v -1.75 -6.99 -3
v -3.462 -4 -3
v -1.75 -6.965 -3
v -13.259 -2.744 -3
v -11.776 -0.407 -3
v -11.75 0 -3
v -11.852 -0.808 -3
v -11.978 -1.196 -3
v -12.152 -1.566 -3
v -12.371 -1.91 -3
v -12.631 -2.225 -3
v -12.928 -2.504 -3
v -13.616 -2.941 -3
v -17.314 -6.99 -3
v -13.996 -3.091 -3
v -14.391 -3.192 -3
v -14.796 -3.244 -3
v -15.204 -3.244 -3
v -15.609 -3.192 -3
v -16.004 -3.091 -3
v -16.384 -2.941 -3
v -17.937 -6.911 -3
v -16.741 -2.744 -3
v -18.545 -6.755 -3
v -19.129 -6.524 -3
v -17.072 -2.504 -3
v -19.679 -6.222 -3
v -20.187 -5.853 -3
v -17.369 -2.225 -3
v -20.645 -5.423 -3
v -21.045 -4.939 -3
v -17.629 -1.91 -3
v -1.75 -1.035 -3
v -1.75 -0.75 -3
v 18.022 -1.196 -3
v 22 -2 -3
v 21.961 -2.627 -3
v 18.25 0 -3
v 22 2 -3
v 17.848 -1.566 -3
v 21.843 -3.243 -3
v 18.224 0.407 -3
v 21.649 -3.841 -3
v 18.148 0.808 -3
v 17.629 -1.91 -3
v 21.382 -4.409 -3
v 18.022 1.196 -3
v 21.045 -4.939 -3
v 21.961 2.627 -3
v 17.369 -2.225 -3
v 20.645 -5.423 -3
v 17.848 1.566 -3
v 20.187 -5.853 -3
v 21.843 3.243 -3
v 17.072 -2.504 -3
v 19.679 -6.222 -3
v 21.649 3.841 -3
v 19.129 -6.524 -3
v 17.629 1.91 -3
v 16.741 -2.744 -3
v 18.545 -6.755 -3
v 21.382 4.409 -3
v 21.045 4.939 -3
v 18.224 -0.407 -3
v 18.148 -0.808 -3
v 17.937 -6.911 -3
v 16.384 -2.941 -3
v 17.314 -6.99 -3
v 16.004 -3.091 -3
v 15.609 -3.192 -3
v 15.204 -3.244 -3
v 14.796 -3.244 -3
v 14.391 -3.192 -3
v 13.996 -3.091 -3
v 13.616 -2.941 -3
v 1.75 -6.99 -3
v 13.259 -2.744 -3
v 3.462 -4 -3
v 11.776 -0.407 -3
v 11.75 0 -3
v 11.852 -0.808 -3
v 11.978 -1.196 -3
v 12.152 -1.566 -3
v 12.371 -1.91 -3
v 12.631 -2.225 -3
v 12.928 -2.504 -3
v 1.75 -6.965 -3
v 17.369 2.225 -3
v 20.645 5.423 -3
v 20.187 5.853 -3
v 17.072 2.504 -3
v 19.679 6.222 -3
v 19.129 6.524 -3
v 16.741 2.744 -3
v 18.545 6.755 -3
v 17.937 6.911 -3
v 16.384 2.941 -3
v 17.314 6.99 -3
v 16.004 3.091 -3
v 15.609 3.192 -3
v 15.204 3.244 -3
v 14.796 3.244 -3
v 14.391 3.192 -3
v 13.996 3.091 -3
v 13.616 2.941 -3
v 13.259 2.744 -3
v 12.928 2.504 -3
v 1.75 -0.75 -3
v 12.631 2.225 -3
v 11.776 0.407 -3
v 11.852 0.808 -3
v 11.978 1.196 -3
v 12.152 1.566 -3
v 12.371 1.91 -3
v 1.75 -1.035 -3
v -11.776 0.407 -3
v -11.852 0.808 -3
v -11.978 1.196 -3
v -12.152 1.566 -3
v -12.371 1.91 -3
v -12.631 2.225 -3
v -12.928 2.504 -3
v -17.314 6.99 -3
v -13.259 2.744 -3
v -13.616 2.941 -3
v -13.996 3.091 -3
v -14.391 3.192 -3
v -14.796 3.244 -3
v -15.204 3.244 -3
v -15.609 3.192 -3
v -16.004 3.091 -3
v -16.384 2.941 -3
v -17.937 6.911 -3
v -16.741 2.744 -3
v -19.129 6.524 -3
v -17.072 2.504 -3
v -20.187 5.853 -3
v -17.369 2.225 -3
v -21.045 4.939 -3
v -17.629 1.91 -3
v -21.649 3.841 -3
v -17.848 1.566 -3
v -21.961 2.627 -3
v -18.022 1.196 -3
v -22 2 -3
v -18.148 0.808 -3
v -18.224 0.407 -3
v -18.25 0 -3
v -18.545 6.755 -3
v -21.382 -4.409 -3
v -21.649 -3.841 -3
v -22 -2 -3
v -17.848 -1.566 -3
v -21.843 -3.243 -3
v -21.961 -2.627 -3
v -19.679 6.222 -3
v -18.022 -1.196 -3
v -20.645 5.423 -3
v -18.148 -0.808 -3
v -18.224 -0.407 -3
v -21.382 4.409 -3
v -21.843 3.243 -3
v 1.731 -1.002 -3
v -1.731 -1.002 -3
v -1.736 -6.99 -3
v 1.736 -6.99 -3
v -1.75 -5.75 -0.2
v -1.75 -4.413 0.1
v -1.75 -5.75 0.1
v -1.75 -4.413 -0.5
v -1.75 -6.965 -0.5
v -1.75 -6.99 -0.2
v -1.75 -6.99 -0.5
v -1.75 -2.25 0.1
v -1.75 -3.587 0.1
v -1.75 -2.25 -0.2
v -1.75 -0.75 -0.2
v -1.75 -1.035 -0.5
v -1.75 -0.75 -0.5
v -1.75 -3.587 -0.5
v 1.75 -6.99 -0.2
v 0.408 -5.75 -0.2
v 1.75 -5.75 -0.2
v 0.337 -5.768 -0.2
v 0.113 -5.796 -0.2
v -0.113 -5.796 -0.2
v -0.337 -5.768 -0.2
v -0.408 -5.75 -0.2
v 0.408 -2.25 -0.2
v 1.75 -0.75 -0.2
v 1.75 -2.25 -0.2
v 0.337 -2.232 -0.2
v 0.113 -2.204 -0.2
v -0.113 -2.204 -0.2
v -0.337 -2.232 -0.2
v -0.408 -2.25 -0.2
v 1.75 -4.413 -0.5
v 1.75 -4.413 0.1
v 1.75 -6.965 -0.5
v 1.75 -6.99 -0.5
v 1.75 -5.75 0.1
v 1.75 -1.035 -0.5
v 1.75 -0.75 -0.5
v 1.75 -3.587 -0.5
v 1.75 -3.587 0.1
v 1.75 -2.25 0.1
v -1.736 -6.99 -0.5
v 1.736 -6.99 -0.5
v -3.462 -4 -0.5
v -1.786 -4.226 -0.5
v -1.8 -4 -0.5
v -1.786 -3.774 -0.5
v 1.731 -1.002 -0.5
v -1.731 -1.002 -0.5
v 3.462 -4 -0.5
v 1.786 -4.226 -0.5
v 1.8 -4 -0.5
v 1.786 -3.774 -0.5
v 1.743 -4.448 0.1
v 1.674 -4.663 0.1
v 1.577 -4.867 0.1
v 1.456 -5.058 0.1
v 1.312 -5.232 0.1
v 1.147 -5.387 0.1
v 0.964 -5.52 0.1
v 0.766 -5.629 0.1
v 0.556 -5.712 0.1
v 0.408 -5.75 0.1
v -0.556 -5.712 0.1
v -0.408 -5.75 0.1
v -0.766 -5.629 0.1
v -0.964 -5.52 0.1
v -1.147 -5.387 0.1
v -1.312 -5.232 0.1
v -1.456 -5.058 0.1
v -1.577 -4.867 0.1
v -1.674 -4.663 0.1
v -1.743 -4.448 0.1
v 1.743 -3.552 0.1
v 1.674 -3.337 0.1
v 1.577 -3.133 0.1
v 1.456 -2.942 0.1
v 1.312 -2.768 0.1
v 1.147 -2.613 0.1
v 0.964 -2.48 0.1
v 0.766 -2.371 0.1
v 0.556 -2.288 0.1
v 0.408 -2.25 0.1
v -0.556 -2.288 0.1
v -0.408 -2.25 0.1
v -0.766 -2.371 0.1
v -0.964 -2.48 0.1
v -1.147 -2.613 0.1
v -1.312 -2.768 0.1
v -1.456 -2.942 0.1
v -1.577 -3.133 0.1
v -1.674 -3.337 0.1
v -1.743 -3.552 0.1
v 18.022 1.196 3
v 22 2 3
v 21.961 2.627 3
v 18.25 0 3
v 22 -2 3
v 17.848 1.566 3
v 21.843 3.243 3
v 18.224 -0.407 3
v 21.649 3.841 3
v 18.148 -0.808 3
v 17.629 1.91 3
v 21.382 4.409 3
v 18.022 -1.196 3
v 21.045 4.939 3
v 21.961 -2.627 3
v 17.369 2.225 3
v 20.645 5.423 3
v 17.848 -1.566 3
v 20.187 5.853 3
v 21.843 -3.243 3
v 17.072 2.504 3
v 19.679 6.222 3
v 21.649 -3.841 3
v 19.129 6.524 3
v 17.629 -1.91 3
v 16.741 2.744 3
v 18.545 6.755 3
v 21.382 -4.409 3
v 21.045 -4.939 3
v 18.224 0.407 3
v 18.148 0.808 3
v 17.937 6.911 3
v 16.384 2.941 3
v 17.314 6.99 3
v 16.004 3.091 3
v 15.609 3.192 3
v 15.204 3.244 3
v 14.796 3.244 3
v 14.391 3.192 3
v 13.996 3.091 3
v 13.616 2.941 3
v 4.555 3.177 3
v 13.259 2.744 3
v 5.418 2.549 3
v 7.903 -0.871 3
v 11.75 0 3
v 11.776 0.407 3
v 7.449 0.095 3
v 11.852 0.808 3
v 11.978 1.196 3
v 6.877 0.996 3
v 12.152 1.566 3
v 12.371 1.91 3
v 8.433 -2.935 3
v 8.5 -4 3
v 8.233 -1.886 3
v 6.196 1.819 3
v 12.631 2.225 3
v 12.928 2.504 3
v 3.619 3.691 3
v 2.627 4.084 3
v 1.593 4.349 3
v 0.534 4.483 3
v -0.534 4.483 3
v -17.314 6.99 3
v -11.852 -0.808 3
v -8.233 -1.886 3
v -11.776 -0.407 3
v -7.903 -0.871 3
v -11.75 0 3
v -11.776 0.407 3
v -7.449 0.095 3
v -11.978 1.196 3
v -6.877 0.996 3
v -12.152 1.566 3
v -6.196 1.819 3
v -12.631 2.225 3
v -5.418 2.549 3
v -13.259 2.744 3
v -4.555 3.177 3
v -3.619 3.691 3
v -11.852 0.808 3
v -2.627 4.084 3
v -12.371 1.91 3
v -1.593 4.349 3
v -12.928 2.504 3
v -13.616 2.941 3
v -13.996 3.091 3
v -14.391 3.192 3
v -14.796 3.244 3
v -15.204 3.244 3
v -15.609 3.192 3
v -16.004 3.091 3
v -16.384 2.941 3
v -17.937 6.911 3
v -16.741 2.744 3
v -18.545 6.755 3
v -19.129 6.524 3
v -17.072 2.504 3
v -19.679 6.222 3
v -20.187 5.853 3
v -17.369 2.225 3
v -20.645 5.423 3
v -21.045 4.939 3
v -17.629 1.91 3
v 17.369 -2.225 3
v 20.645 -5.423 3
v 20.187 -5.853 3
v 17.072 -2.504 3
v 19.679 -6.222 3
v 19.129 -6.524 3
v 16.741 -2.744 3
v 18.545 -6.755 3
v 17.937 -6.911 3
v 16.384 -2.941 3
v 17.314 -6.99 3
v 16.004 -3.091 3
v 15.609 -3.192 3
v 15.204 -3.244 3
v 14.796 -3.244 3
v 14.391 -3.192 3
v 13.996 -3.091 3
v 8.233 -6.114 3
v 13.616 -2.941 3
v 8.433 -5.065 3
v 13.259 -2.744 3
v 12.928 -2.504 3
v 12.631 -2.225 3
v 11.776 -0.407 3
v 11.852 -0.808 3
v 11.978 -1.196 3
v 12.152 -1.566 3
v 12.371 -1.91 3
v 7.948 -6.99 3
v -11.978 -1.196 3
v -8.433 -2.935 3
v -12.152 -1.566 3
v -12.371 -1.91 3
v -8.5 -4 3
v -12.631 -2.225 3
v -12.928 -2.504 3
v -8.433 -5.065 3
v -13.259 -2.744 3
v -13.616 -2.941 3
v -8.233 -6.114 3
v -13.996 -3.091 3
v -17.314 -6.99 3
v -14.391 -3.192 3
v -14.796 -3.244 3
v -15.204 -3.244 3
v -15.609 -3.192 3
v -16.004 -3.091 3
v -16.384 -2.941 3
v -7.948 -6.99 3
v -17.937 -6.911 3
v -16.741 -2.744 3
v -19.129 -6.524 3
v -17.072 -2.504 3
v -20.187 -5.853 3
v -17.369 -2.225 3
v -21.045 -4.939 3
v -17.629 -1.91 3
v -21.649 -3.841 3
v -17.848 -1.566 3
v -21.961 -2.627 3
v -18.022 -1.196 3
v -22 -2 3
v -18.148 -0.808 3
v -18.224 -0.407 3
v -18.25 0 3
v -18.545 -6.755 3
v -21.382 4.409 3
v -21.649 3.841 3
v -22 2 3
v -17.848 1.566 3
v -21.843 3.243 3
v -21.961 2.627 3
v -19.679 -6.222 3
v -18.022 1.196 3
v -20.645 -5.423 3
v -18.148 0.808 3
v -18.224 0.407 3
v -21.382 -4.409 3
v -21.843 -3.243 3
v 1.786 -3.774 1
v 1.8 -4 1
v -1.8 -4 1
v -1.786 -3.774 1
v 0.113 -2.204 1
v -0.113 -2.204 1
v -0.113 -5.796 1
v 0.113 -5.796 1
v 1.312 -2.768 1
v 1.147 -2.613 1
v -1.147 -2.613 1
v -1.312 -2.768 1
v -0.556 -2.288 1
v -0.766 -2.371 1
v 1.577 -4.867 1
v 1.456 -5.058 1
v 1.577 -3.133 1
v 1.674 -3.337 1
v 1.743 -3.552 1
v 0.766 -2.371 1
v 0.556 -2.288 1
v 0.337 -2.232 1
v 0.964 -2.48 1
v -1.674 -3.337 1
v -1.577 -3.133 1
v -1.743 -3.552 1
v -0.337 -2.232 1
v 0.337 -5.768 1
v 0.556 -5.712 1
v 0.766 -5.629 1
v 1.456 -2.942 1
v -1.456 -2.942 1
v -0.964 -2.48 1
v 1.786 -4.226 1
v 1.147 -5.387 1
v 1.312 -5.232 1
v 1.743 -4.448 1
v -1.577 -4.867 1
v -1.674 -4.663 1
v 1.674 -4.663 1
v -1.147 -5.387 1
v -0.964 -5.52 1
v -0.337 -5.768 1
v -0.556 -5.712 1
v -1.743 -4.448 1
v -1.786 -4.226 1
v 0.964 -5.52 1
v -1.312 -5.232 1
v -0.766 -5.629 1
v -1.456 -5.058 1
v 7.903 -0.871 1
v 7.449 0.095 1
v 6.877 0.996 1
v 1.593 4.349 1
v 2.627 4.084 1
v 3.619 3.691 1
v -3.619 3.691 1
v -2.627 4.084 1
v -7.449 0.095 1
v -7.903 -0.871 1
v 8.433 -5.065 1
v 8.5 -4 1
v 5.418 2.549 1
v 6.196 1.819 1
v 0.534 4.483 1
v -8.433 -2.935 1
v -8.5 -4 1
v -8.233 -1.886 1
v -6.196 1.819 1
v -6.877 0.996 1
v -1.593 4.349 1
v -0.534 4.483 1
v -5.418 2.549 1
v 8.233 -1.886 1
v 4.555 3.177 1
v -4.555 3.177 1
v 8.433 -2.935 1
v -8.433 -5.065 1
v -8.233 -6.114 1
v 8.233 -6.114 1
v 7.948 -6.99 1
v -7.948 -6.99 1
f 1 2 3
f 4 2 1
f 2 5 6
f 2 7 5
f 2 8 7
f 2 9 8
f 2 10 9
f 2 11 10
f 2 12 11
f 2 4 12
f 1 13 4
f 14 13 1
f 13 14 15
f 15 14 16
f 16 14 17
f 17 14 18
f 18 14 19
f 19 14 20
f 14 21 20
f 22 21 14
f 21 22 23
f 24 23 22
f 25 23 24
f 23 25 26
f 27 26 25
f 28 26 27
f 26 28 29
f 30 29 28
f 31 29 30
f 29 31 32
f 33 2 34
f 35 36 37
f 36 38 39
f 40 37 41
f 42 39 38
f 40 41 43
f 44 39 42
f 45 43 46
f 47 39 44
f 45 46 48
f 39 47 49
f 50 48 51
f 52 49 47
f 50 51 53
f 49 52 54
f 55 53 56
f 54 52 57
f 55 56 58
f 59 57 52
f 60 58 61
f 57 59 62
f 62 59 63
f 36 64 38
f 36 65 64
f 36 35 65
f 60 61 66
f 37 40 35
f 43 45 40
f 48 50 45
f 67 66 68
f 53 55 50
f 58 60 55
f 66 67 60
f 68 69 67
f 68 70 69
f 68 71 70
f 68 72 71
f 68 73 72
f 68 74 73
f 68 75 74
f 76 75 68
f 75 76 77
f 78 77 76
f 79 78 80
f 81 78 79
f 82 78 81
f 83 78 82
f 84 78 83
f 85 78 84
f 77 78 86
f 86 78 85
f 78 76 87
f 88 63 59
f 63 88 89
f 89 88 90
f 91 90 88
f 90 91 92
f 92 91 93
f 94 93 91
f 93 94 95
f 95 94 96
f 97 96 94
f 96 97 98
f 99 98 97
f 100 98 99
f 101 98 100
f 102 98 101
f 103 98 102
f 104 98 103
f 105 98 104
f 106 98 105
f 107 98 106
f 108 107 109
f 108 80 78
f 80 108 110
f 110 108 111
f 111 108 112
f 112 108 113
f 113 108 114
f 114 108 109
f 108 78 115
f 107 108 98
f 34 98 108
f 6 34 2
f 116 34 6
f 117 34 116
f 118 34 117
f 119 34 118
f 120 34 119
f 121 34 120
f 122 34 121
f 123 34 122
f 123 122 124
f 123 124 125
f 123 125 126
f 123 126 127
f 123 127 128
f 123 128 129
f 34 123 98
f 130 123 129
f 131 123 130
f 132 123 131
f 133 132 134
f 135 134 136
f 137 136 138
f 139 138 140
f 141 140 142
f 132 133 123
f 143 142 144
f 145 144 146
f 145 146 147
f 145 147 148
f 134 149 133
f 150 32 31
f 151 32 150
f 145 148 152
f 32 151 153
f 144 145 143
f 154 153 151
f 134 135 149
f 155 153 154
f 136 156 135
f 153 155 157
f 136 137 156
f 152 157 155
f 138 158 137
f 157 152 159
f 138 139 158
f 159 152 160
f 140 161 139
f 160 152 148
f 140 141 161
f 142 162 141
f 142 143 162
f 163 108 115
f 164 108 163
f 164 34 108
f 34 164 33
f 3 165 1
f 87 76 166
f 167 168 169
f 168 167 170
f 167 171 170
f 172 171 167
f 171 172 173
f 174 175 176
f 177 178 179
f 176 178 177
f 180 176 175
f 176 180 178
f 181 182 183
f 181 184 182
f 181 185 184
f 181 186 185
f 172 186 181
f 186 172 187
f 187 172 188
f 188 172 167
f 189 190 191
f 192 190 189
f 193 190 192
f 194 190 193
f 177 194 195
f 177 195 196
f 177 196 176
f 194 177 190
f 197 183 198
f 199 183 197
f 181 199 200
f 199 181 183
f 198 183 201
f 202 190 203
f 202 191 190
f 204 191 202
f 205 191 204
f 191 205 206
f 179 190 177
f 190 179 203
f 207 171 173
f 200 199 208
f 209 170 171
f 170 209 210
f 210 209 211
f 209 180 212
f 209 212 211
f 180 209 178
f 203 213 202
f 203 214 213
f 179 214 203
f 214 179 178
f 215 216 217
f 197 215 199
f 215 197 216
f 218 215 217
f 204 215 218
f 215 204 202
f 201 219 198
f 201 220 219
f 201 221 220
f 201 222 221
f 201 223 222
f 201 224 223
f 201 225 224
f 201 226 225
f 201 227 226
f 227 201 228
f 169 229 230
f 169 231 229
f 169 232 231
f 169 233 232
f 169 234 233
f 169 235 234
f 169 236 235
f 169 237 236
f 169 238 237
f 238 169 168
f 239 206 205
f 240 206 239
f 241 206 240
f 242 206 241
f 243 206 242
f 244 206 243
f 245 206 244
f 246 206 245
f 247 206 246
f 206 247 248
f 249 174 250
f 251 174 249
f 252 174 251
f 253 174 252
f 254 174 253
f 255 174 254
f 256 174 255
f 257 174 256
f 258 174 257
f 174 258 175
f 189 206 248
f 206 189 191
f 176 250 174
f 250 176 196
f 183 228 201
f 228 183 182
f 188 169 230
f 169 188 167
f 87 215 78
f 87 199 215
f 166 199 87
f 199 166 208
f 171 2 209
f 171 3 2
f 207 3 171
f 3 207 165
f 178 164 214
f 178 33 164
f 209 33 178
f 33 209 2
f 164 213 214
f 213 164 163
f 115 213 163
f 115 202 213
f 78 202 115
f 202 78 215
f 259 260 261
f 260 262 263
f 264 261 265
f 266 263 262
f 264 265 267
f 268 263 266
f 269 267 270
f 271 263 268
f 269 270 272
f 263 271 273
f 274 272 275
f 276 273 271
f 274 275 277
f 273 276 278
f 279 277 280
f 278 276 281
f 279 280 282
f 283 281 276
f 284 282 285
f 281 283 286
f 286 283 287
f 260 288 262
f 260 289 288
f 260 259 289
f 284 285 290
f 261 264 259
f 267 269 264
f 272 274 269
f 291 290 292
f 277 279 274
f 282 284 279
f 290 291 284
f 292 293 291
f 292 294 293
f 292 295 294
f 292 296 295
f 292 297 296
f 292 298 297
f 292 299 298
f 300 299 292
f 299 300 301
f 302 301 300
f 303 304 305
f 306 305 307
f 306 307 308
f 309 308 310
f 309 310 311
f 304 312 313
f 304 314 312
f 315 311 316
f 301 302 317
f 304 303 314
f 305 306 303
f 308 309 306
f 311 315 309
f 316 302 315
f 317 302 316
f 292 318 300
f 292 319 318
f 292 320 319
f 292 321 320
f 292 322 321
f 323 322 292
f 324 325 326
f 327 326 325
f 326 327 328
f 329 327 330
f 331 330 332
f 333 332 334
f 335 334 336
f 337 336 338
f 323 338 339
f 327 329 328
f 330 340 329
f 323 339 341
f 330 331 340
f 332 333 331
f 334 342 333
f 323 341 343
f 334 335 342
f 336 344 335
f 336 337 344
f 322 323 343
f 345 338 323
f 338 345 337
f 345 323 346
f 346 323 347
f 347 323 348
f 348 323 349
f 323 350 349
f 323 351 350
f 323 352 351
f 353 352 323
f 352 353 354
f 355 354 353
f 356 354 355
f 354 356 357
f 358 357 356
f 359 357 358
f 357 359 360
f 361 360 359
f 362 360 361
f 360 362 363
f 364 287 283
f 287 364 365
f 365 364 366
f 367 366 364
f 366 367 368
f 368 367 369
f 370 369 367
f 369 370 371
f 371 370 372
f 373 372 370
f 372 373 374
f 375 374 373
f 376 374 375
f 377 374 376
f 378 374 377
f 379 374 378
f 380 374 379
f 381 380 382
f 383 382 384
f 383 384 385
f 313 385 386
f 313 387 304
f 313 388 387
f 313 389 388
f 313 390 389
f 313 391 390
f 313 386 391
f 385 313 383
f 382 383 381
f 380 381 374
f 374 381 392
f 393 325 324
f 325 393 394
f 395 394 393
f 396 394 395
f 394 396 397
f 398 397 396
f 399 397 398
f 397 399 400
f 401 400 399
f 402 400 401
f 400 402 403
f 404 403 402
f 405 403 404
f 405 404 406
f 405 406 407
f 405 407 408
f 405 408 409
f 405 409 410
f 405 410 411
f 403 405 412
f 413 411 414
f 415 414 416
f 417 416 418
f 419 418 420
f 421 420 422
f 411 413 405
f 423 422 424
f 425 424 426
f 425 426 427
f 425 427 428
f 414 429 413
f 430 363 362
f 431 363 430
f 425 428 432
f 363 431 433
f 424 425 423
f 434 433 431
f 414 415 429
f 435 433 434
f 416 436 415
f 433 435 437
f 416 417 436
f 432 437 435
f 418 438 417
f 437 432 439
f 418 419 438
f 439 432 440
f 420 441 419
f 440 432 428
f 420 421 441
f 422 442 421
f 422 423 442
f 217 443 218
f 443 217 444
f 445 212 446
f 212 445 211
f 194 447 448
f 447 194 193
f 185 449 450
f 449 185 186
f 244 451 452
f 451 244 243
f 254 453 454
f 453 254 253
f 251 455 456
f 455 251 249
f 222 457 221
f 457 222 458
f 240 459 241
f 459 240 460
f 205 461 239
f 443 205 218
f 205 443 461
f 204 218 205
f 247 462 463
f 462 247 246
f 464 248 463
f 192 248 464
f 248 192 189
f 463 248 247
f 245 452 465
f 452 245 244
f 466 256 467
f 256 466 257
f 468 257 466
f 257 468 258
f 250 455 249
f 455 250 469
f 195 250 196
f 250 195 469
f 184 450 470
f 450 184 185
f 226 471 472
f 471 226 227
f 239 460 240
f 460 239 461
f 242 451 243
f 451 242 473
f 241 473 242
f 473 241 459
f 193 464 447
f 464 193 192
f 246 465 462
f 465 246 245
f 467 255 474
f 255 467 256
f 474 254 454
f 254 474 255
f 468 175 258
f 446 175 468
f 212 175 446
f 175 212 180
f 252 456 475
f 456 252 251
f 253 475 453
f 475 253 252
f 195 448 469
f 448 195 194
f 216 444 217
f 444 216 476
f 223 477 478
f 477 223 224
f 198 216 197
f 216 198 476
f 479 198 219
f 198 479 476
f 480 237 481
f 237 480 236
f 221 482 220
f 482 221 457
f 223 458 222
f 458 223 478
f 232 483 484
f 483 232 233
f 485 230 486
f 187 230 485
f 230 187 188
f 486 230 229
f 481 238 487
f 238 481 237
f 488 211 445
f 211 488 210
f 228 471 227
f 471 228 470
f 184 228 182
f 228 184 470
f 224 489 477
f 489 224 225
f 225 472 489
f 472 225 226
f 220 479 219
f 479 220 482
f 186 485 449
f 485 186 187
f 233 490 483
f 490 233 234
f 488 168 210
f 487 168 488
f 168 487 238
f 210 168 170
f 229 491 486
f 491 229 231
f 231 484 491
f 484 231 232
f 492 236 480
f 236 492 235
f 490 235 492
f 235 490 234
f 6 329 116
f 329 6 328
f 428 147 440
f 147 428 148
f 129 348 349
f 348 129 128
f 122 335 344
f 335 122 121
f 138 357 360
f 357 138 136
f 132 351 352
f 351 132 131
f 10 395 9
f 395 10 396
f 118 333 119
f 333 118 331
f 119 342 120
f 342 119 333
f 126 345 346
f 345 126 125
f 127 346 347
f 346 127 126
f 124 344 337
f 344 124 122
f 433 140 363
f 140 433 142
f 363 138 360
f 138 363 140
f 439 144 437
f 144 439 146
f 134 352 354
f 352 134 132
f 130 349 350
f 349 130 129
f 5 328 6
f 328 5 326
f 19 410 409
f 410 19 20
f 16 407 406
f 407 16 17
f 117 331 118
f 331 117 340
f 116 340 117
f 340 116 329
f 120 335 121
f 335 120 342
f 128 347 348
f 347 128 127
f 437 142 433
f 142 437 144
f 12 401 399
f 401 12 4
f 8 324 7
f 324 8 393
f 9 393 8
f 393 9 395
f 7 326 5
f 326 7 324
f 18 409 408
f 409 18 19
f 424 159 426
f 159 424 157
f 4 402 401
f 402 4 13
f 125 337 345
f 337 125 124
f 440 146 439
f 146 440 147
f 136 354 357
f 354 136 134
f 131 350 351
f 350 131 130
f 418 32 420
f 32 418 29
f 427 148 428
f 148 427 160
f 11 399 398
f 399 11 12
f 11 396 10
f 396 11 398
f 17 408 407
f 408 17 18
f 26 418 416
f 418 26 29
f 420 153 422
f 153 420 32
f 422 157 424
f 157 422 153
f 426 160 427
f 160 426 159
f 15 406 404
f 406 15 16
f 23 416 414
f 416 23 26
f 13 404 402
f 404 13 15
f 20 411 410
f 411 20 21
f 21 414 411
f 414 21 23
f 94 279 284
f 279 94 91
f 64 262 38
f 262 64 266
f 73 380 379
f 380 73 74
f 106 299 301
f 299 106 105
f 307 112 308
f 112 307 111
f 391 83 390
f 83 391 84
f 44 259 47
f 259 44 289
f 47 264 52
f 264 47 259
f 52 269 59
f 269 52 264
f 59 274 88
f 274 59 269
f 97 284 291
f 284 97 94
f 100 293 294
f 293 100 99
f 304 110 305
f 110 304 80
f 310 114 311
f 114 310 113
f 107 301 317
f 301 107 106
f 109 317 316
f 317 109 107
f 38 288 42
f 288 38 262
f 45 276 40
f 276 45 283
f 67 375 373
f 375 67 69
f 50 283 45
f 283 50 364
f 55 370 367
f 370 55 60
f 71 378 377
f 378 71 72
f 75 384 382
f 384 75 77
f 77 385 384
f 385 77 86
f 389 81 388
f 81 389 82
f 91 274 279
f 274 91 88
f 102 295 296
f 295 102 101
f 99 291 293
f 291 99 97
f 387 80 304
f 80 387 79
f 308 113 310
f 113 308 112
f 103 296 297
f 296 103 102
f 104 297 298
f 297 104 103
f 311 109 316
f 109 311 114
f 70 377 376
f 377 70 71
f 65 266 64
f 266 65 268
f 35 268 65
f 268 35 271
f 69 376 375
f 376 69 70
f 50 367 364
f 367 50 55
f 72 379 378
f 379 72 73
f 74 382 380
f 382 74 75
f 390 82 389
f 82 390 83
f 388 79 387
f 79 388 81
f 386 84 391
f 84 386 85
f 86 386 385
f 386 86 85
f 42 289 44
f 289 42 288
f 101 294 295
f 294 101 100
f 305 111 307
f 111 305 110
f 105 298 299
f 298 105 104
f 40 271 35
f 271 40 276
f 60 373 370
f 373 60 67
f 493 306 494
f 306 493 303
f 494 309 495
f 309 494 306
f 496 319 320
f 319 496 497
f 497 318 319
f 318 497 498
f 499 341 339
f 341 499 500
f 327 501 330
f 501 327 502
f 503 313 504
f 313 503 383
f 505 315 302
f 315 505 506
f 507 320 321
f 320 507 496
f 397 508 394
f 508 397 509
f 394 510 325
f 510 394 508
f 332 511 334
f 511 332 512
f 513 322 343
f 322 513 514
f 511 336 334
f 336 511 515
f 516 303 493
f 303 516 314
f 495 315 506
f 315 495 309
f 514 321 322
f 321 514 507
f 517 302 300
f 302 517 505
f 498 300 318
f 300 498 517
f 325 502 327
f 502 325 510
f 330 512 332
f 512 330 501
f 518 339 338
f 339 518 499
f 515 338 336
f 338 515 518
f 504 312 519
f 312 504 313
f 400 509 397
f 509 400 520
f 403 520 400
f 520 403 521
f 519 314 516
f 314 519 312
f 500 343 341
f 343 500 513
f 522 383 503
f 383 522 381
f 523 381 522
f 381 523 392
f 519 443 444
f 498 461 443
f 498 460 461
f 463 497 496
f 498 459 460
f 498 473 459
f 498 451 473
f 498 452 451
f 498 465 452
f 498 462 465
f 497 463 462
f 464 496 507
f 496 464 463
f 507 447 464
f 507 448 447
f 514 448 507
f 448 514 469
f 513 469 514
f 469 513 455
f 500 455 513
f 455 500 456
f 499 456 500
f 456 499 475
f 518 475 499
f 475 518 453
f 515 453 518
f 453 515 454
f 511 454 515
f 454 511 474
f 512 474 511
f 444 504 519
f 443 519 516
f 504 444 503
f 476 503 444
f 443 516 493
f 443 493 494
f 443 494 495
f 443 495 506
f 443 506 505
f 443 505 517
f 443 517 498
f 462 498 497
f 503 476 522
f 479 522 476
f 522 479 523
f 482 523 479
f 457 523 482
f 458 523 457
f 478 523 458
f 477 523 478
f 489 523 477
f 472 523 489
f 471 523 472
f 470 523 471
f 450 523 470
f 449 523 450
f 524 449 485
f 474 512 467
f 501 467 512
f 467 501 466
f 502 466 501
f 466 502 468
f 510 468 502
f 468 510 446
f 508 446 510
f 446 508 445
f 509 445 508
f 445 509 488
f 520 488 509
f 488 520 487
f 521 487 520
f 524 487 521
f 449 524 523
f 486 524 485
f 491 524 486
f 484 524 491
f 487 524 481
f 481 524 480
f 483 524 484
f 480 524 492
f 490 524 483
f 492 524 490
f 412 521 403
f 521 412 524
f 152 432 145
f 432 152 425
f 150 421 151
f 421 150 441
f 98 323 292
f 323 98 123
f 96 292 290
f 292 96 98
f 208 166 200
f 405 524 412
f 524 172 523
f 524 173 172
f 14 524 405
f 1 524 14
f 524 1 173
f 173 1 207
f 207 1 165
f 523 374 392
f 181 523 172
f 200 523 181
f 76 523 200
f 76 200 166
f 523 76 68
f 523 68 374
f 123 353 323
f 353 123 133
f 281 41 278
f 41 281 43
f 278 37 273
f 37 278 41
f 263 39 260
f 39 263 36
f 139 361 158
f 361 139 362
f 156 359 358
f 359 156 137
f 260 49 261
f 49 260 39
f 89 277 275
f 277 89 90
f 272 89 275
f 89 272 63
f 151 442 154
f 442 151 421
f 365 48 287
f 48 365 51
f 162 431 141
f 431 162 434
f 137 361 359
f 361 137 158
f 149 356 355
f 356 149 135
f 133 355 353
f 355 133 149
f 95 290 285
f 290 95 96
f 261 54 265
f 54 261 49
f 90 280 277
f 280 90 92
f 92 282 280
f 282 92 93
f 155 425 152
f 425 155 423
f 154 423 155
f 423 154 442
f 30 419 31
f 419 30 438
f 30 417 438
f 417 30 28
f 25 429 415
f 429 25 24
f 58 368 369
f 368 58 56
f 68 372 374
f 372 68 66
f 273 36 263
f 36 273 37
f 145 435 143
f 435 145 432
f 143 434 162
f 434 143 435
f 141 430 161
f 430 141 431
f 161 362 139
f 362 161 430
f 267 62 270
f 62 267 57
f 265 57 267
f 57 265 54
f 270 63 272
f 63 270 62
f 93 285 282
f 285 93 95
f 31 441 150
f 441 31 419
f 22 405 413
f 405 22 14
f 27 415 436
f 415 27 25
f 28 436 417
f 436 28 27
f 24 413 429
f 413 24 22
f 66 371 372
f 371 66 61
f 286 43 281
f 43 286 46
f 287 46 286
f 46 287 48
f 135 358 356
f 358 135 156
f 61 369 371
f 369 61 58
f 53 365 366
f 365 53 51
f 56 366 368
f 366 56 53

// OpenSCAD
$fn = 50;


difference() {
	union() {
		translate(v = [0, 0, -3.0000000000]) {
			hull() {
				translate(v = [-17.0000000000, 2.0000000000, 0]) {
					cylinder(h = 6, r = 5);
				}
				translate(v = [17.0000000000, 2.0000000000, 0]) {
					cylinder(h = 6, r = 5);
				}
				translate(v = [-17.0000000000, -2.0000000000, 0]) {
					cylinder(h = 6, r = 5);
				}
				translate(v = [17.0000000000, -2.0000000000, 0]) {
					cylinder(h = 6, r = 5);
				}
			}
		}
	}
	union() {
		translate(v = [0, -4, 3.0000000000]) {
			rotate(a = [0, 0, 0]) {
				difference() {
					union() {
						translate(v = [0, 0, -6.0000000000]) {
							rotate(a = [0, 0, 0]) {
								difference() {
									union() {
										translate(v = [-1.7500000000, -3.2500000000, -0.3000000000]) {
											cube(size = [3.5000000000, 6.5000000000, 0.3000000000]);
										}
										translate(v = [-1.7500000000, -1.7500000000, -0.6000000000]) {
											cube(size = [3.5000000000, 3.5000000000, 0.3000000000]);
										}
										translate(v = [-1.7500000000, -3.2500000000, 2.5000000000]) {
											cube(size = [3.5000000000, 6.5000000000, 0.3000000000]);
										}
										translate(v = [-1.7500000000, -1.7500000000, 2.8000000000]) {
											cube(size = [3.5000000000, 3.5000000000, 0.3000000000]);
										}
										linear_extrude(height = 2.5000000000) {
											polygon(points = [[3.4620000000, 0.0000000000], [1.7310000000, 2.9981799479], [-1.7310000000, 2.9981799479], [-3.4620000000, 0.0000000000], [-1.7310000000, -2.9981799479], [1.7310000000, -2.9981799479]]);
										}
										translate(v = [-1.7500000000, -3.2500000000, -0.3000000000]) {
											cube(size = [3.5000000000, 6.5000000000, 0.3000000000]);
										}
										translate(v = [-1.7500000000, -1.7500000000, -0.6000000000]) {
											cube(size = [3.5000000000, 3.5000000000, 0.3000000000]);
										}
										translate(v = [-1.7500000000, -3.2500000000, 2.5000000000]) {
											cube(size = [3.5000000000, 6.5000000000, 0.3000000000]);
										}
										translate(v = [-1.7500000000, -1.7500000000, 2.8000000000]) {
											cube(size = [3.5000000000, 3.5000000000, 0.3000000000]);
										}
										translate(v = [-1.7500000000, -3.2500000000, -0.3000000000]) {
											cube(size = [3.5000000000, 6.5000000000, 0.3000000000]);
										}
										translate(v = [-1.7500000000, -1.7500000000, -0.6000000000]) {
											cube(size = [3.5000000000, 3.5000000000, 0.3000000000]);
										}
										translate(v = [-1.7500000000, -3.2500000000, 2.5000000000]) {
											cube(size = [3.5000000000, 6.5000000000, 0.3000000000]);
										}
										translate(v = [-1.7500000000, -1.7500000000, 2.8000000000]) {
											cube(size = [3.5000000000, 3.5000000000, 0.3000000000]);
										}
									}
									union();
								}
							}
						}
						translate(v = [0, 0, -6.0000000000]) {
							rotate(a = [0, 0, 0]) {
								difference() {
									union() {
										translate(v = [-1.7500000000, -3.2500000000, -0.3000000000]) {
											cube(size = [3.5000000000, 6.5000000000, 0.3000000000]);
										}
										translate(v = [-1.7500000000, -1.7500000000, -0.6000000000]) {
											cube(size = [3.5000000000, 3.5000000000, 0.3000000000]);
										}
										translate(v = [-1.7500000000, -3.2500000000, 2.5000000000]) {
											cube(size = [3.5000000000, 6.5000000000, 0.3000000000]);
										}
										translate(v = [-1.7500000000, -1.7500000000, 2.8000000000]) {
											cube(size = [3.5000000000, 3.5000000000, 0.3000000000]);
										}
										linear_extrude(height = 2.5000000000) {
											polygon(points = [[3.4620000000, 0.0000000000], [1.7310000000, 2.9981799479], [-1.7310000000, 2.9981799479], [-3.4620000000, 0.0000000000], [-1.7310000000, -2.9981799479], [1.7310000000, -2.9981799479]]);
										}
										translate(v = [-1.7500000000, -3.2500000000, -0.3000000000]) {
											cube(size = [3.5000000000, 6.5000000000, 0.3000000000]);
										}
										translate(v = [-1.7500000000, -1.7500000000, -0.6000000000]) {
											cube(size = [3.5000000000, 3.5000000000, 0.3000000000]);
										}
										translate(v = [-1.7500000000, -3.2500000000, 2.5000000000]) {
											cube(size = [3.5000000000, 6.5000000000, 0.3000000000]);
										}
										translate(v = [-1.7500000000, -1.7500000000, 2.8000000000]) {
											cube(size = [3.5000000000, 3.5000000000, 0.3000000000]);
										}
										translate(v = [-1.7500000000, -3.2500000000, -0.3000000000]) {
											cube(size = [3.5000000000, 6.5000000000, 0.3000000000]);
										}
										translate(v = [-1.7500000000, -1.7500000000, -0.6000000000]) {
											cube(size = [3.5000000000, 3.5000000000, 0.3000000000]);
										}
										translate(v = [-1.7500000000, -3.2500000000, 2.5000000000]) {
											cube(size = [3.5000000000, 6.5000000000, 0.3000000000]);
										}
										translate(v = [-1.7500000000, -1.7500000000, 2.8000000000]) {
											cube(size = [3.5000000000, 3.5000000000, 0.3000000000]);
										}
									}
									union();
								}
							}
						}
						translate(v = [0, 0, -6.0000000000]) {
							rotate(a = [0, 0, 0]) {
								difference() {
									union() {
										translate(v = [-1.7500000000, -3.2500000000, -0.3000000000]) {
											cube(size = [3.5000000000, 6.5000000000, 0.3000000000]);
										}
										translate(v = [-1.7500000000, -1.7500000000, -0.6000000000]) {
											cube(size = [3.5000000000, 3.5000000000, 0.3000000000]);
										}
										translate(v = [-1.7500000000, -3.2500000000, 2.5000000000]) {
											cube(size = [3.5000000000, 6.5000000000, 0.3000000000]);
										}
										translate(v = [-1.7500000000, -1.7500000000, 2.8000000000]) {
											cube(size = [3.5000000000, 3.5000000000, 0.3000000000]);
										}
										linear_extrude(height = 2.5000000000) {
											polygon(points = [[3.4620000000, 0.0000000000], [1.7310000000, 2.9981799479], [-1.7310000000, 2.9981799479], [-3.4620000000, 0.0000000000], [-1.7310000000, -2.9981799479], [1.7310000000, -2.9981799479]]);
										}
										translate(v = [-1.7500000000, -3.2500000000, -0.3000000000]) {
											cube(size = [3.5000000000, 6.5000000000, 0.3000000000]);
										}
										translate(v = [-1.7500000000, -1.7500000000, -0.6000000000]) {
											cube(size = [3.5000000000, 3.5000000000, 0.3000000000]);
										}
										translate(v = [-1.7500000000, -3.2500000000, 2.5000000000]) {
											cube(size = [3.5000000000, 6.5000000000, 0.3000000000]);
										}
										translate(v = [-1.7500000000, -1.7500000000, 2.8000000000]) {
											cube(size = [3.5000000000, 3.5000000000, 0.3000000000]);
										}
										translate(v = [-1.7500000000, -3.2500000000, -0.3000000000]) {
											cube(size = [3.5000000000, 6.5000000000, 0.3000000000]);
										}
										translate(v = [-1.7500000000, -1.7500000000, -0.6000000000]) {
											cube(size = [3.5000000000, 3.5000000000, 0.3000000000]);
										}
										translate(v = [-1.7500000000, -3.2500000000, 2.5000000000]) {
											cube(size = [3.5000000000, 6.5000000000, 0.3000000000]);
										}
										translate(v = [-1.7500000000, -1.7500000000, 2.8000000000]) {
											cube(size = [3.5000000000, 3.5000000000, 0.3000000000]);
										}
									}
									union();
								}
							}
						}
						translate(v = [0, 0, -6.0000000000]) {
							cylinder(h = 6, r = 1.5000000000);
						}
						translate(v = [0, 0, -1.9000000000]) {
							cylinder(h = 1.9000000000, r1 = 1.8000000000, r2 = 3.6000000000);
						}
						translate(v = [0, 0, -6.0000000000]) {
							cylinder(h = 6, r = 1.8000000000);
						}
						translate(v = [0, 0, -6.0000000000]) {
							cylinder(h = 6, r = 1.5000000000);
						}
					}
					union();
				}
			}
		}
		translate(v = [-15.0000000000, 0.0000000000, -100.0000000000]) {
			cylinder(h = 200, r = 3.2500000000);
		}
		translate(v = [15.0000000000, 0.0000000000, -100.0000000000]) {
			cylinder(h = 200, r = 3.2500000000);
		}
		translate(v = [15.0000000000, 0.0000000000, -100.0000000000]) {
			cylinder(h = 200, r = 3.2500000000);
		}
		translate(v = [-15.0000000000, 0.0000000000, -100.0000000000]) {
			cylinder(h = 200, r = 1.8000000000);
		}
		translate(v = [15.0000000000, 0.0000000000, -100.0000000000]) {
			cylinder(h = 200, r = 1.8000000000);
		}
		translate(v = [-15.0000000000, 0.0000000000, -100.0000000000]) {
			cylinder(h = 200, r = 1.8000000000);
		}
		translate(v = [15.0000000000, 0.0000000000, -100.0000000000]) {
			cylinder(h = 200, r = 1.8000000000);
		}
		translate(v = [-15.0000000000, 0.0000000000, -100.0000000000]) {
			cylinder(h = 200, r = 1.8000000000);
		}
		translate(v = [15.0000000000, 0.0000000000, -100.0000000000]) {
			cylinder(h = 200, r = 1.8000000000);
		}
		translate(v = [0, -4, 1.0000000000]) {
			cylinder(h = 2, r = 8.5000000000);
		}
	}
}
